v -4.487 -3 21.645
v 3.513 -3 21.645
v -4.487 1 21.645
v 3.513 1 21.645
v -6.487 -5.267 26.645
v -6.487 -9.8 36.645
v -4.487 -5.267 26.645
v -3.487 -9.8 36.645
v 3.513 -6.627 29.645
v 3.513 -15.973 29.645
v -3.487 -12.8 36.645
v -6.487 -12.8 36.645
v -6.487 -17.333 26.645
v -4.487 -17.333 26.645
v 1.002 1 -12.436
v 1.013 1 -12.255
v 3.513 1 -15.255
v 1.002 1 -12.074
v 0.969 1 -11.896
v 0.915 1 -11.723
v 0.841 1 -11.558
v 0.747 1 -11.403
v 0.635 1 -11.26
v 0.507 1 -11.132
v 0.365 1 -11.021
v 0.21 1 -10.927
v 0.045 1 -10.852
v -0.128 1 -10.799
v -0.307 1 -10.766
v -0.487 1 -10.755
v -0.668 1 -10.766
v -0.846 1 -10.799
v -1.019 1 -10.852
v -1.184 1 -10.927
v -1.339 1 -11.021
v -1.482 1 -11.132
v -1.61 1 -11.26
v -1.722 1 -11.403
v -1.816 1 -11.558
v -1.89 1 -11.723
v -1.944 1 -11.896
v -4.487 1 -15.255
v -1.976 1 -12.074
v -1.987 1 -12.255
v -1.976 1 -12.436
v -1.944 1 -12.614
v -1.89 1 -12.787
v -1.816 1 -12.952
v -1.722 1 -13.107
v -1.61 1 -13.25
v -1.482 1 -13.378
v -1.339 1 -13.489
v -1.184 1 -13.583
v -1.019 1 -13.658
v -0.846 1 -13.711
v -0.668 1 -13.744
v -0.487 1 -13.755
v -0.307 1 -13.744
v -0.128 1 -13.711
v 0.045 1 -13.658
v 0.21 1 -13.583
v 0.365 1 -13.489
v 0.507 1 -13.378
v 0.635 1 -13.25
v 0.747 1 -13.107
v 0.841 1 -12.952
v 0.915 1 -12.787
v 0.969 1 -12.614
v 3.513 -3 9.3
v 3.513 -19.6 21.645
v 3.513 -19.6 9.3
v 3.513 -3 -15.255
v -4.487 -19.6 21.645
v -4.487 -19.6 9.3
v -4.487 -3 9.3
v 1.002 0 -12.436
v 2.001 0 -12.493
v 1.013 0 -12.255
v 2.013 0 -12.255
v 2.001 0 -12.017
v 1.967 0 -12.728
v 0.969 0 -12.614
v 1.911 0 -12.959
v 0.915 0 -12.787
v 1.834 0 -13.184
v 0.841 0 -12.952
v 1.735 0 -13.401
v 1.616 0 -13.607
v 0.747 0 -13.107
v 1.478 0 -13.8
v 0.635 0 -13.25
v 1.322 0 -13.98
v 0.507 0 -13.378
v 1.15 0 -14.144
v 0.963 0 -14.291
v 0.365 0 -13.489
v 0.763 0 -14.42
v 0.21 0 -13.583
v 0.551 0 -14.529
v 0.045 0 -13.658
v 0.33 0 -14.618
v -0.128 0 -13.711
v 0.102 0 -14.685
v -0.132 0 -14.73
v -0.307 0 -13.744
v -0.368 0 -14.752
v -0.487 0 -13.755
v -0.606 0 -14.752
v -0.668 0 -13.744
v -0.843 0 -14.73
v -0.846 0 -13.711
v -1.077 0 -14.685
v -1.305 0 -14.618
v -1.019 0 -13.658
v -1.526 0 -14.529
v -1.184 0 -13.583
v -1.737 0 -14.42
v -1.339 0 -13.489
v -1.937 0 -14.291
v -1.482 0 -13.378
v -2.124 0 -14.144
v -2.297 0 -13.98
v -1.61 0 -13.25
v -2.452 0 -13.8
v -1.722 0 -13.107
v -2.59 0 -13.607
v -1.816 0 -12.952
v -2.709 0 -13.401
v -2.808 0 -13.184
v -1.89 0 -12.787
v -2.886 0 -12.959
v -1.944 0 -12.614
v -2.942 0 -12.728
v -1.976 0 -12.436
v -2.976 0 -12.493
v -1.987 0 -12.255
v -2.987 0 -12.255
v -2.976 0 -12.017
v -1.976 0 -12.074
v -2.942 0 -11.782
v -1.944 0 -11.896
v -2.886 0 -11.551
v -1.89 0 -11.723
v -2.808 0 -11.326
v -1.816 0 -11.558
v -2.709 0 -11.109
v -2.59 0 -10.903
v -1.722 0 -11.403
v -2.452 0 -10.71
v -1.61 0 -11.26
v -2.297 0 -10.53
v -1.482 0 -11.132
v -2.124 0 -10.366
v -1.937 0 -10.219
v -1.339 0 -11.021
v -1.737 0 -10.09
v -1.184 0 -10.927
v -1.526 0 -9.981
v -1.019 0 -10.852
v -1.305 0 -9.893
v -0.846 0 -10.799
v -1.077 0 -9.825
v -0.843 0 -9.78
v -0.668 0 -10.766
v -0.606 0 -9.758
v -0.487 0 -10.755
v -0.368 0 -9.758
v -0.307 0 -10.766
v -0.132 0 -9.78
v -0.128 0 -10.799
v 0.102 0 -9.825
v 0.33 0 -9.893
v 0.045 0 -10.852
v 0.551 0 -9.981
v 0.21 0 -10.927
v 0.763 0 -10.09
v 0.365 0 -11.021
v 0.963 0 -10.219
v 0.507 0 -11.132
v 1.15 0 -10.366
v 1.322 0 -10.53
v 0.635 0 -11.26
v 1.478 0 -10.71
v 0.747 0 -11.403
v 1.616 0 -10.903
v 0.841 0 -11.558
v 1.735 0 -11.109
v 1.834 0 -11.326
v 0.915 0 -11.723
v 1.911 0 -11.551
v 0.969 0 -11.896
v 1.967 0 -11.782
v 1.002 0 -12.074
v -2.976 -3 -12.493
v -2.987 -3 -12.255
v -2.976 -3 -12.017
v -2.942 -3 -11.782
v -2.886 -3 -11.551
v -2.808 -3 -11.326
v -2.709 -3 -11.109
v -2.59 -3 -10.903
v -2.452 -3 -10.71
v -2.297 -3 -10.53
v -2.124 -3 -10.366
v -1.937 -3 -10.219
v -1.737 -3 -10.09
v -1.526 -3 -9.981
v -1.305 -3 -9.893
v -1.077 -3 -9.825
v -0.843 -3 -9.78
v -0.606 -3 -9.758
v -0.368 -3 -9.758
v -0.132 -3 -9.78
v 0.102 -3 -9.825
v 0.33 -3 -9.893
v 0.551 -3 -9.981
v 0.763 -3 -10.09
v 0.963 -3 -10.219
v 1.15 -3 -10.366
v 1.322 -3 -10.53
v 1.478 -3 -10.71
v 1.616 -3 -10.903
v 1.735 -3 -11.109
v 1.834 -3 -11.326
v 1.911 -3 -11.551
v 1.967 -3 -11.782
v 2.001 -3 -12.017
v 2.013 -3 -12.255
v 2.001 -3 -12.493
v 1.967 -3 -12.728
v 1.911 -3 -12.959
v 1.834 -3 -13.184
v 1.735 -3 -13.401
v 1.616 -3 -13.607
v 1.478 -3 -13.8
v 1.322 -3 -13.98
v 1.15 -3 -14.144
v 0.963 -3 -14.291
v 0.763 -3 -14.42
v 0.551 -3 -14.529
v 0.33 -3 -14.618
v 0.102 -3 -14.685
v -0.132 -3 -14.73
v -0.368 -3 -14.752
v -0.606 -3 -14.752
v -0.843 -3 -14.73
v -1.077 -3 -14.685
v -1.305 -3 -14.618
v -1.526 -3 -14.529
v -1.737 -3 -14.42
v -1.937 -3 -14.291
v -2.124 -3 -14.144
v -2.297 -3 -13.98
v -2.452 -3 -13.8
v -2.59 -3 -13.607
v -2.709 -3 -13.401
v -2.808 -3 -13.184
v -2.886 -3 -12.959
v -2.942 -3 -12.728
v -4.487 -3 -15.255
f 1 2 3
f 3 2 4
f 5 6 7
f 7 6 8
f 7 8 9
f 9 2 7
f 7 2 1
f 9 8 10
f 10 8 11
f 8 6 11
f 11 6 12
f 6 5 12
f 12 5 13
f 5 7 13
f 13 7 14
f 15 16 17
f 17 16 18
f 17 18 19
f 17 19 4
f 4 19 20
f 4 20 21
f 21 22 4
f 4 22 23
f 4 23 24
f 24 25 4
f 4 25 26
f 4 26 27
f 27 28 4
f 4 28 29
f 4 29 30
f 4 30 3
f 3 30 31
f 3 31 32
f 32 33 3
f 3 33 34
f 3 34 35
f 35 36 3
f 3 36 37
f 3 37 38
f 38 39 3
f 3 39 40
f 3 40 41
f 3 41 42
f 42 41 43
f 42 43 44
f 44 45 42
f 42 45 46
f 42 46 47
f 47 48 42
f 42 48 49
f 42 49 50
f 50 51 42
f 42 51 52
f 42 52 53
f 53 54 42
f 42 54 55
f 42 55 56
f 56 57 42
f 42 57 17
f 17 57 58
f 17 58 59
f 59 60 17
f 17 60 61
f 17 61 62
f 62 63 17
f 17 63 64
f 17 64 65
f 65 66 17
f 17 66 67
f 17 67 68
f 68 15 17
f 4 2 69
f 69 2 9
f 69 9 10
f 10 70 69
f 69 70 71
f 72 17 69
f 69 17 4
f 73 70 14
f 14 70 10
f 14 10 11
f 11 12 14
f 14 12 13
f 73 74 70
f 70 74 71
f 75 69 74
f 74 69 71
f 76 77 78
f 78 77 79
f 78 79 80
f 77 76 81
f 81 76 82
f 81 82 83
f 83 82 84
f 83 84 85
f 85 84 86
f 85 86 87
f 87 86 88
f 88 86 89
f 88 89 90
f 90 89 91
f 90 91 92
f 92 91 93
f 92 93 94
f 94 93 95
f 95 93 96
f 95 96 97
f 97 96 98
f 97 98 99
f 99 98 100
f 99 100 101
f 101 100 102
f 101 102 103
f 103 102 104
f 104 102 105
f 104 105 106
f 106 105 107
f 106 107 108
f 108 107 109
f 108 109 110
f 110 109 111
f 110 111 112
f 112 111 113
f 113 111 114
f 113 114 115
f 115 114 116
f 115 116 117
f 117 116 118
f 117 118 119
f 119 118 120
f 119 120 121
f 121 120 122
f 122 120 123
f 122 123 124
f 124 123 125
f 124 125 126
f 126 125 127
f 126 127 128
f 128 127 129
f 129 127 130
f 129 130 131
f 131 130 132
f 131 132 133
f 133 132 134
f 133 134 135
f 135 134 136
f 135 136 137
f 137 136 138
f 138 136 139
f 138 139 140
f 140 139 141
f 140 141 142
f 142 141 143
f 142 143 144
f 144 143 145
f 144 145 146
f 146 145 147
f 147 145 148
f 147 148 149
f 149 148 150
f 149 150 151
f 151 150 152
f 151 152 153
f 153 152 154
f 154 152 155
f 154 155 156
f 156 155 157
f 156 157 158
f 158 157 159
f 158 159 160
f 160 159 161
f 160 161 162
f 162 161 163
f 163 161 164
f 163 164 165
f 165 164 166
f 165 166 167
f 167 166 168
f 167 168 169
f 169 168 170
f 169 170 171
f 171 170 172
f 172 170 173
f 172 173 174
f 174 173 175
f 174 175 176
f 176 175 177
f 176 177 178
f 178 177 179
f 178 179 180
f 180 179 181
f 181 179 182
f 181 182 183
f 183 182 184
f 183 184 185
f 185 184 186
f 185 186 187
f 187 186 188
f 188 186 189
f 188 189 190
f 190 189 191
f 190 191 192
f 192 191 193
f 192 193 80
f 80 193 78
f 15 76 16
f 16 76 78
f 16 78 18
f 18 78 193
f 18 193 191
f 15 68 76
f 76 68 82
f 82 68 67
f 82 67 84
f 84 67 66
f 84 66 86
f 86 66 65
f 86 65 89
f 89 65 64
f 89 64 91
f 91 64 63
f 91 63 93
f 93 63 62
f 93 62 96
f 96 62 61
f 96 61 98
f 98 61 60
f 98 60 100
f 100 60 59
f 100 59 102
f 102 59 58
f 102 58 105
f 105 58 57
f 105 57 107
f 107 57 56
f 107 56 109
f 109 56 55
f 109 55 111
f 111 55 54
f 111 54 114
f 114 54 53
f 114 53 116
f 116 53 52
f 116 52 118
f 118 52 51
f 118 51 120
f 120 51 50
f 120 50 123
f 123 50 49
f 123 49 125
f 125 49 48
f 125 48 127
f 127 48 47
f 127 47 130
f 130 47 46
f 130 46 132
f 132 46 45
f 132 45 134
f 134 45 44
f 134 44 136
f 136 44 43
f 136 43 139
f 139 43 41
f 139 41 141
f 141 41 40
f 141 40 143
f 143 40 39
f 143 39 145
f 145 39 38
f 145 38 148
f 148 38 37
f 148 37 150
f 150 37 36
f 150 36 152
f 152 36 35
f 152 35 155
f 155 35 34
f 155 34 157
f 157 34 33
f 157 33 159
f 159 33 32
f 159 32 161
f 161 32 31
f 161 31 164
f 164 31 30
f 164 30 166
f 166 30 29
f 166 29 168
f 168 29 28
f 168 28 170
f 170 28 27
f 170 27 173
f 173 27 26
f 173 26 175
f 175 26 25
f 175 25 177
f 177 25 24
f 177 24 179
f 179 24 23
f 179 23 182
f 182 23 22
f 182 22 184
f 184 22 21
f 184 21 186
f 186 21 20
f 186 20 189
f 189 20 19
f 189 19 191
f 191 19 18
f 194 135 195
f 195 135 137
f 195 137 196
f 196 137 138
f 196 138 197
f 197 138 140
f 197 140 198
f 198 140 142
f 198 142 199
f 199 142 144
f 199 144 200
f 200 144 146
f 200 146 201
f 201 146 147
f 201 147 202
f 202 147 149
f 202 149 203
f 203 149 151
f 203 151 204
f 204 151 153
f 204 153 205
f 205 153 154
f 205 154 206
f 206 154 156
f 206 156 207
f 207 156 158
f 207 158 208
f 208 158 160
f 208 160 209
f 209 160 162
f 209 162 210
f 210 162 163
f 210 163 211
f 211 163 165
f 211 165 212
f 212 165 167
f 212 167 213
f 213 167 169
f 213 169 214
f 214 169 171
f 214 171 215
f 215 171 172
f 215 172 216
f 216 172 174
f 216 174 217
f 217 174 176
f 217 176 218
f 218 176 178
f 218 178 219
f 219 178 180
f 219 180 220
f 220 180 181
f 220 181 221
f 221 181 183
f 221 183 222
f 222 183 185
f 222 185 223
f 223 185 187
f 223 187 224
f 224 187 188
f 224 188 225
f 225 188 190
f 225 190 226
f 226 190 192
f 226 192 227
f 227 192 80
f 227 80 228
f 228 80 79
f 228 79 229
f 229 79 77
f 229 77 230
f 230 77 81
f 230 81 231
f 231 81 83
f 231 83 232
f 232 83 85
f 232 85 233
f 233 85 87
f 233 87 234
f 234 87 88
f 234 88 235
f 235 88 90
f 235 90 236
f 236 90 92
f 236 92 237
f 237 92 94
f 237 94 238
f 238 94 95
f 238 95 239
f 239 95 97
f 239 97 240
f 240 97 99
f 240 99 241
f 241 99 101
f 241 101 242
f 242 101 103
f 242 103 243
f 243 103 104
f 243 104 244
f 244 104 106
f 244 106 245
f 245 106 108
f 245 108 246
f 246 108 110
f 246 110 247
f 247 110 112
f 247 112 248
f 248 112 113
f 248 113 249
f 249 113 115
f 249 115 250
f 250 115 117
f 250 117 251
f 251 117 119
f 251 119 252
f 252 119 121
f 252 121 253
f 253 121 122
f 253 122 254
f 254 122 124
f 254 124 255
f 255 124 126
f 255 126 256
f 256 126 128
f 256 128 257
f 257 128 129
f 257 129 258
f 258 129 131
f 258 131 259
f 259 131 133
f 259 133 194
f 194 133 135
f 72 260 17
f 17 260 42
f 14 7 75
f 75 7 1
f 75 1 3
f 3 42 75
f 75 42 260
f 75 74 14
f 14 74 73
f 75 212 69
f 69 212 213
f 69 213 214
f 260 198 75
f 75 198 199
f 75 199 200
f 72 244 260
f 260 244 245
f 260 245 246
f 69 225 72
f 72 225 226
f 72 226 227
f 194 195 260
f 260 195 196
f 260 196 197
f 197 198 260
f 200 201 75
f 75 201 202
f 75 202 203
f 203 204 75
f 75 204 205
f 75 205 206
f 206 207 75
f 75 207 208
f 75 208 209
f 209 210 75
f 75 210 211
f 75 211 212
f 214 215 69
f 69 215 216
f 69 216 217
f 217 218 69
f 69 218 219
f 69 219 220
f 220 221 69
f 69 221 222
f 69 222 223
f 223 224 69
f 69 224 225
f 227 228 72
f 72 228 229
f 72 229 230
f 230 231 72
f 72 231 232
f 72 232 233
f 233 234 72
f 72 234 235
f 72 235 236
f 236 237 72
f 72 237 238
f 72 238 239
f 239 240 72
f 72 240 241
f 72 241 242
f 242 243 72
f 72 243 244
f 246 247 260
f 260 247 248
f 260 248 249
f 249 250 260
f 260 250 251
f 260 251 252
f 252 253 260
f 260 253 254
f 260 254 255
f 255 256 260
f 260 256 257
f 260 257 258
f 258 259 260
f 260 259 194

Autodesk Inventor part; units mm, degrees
ref_plane "YZ Plane" through (0, 0, 0) normal (1, 0, 0) x (0, 1, 0)
ref_plane "XZ Plane" through (0, 0, 0) normal (0, 1, 0) x (-1, 0, 0)
ref_plane "XY Plane" through (0, 0, 0) normal (0, 0, 1) x (1, 0, 0)
sketch "スケッチ1" plane through (0, 0, 0) normal (0, 1, 0) x (-1, 0, 0)
  line L0 (4.4873, 36.645) -> (-3.5127, 36.645)
  line L1 (-3.5127, 36.645) -> (-3.5127, -15.255)
  line L2 (-3.5127, -15.255) -> (4.4873, -15.255)
  line L3 (4.4873, -15.255) -> (4.4873, 36.645)
  circle A0 centre (0.4873, -12.255) radius 2.5
  line L4 (4.4873, 36.645) -> (9.3325, 36.645)
  line L5 (9.3325, 36.645) -> (9.3325, 26.645)
  line L6 (9.3325, 26.645) -> (4.4873, 26.645)
  line L7 (4.4873, 26.645) -> (4.4873, 36.645)
  point P0 (0, 0)
  dimension "d0" = 5
  dimension "d1" = 3
  dimension "d2" = 4
  dimension "d3" = 4
  dimension "d4" = 46.4
  dimension "d5" = 10
extrude "押し出し1" add sketch "スケッチ1" against normal blind 3 contours L3 L2 L1 L0
sketch "スケッチ2" plane through (0, 0, 0) normal (0, 1, 0) x (1, 0, 0)
  line L0 (3.5127, -36.645) -> (-4.4873, -36.645) projected
  line L1 (3.5127, 15.255) -> (3.5127, -36.645) projected
  line L2 (-4.4873, -36.645) -> (3.5127, -36.645)
  line L3 (3.5127, -36.645) -> (3.5127, 15.255)
  line L4 (3.5127, 15.255) -> (-4.4873, 15.255)
  line L5 (-4.4873, 15.255) -> (-4.4873, -36.645)
  circle A0 centre (-0.4873, 12.255) radius 1.5
  circle A1 centre (-0.4873, 12.255) radius 2.5 projected
  point P0 (0, 0)
  dimension "d8" = 3
extrude "押し出し2" add sketch "スケッチ2" along normal blind 1 contours L0 L5 L4 L1 | A1
sketch "スケッチ3" plane through (0, -3, 0) normal (0, -1, 0) x (1, 0, 0)
  line L0 (-4.4873, 36.645) -> (-4.4873, -15.255) projected
  line L1 (-4.4873, 36.645) -> (-6.4873, 36.645)
  line L2 (-6.4873, 36.645) -> (-6.4873, 26.645)
  line L3 (-6.4873, 26.645) -> (-4.4873, 26.645)
  line L4 (-4.4873, 26.645) -> (-4.4873, 36.645)
  line L5 (-4.4873, 36.645) -> (3.5127, 36.645)
  line L6 (3.5127, 36.645) -> (3.5127, 9.2999)
  line L7 (3.5127, 9.2999) -> (-4.4873, 9.2999)
  line L8 (-4.4873, 9.2999) -> (-4.4873, 36.645)
  line L9 (3.5127, -15.255) -> (3.5127, 36.645) projected
  point P0 (0, 0)
  dimension "d11" = 10
  dimension "d12" = 0
  dimension "d24" = 2
extrude "押し出し3" add sketch "スケッチ3" along normal blind 16.6
chamfer "面取り1" distance 7 angle 45 1 edges at (3.5127, -9.3, 36.645)
chamfer "面取り3" distance 15 distance2 6.8 1 edges at (-4.9873, -19.6, 36.645) measured on face at (0.846, -19.6, 21.8633)
sketch "スケッチ4" plane through (0, 1, 0) normal (0, 1, 0) x (1, 0, 0)
  line L0 (-4.4873, -36.645) -> (-6.4873, -36.645) projected
  line L1 (3.5127, -9.2999) -> (-4.4873, -9.2999) projected
  line L2 (-6.4873, -36.645) -> (3.5127, -36.645)
  line L3 (3.5127, -36.645) -> (3.5127, -9.2999)
  line L4 (3.5127, -9.2999) -> (-6.4873, -9.2999)
  line L5 (-6.4873, -9.2999) -> (-6.4873, -36.645)
  point P0 (0, 0)
extrude "押し出し4" cut sketch "スケッチ4" against normal blind 4
chamfer "面取り4" distance 6.8 distance2 15 1 edges at (-4.9873, -3, 36.645) measured on face at (-4.4873, -9.5333, 36.645)
sketch "スケッチ5" plane through (0, -3, 0) normal (0, 1, 0) x (1, 0, 0)
  line L0 (3.5127, -21.645) -> (-4.4873, -21.645) projected
  line L1 (-4.4873, -9.2999) -> (-4.4873, 15.255) projected
  line L2 (3.5127, -21.645) -> (-4.4873, -21.645)
  line L3 (-4.4873, -21.645) -> (-4.4873, -9.2999)
  line L4 (-4.4873, -9.2999) -> (3.5127, -9.2999)
  line L5 (3.5127, -9.2999) -> (3.5127, -21.645)
  point P0 (0, 0)
extrude "押し出し5" add sketch "スケッチ5" along normal blind 4
properties part number "armmodulepart2"
